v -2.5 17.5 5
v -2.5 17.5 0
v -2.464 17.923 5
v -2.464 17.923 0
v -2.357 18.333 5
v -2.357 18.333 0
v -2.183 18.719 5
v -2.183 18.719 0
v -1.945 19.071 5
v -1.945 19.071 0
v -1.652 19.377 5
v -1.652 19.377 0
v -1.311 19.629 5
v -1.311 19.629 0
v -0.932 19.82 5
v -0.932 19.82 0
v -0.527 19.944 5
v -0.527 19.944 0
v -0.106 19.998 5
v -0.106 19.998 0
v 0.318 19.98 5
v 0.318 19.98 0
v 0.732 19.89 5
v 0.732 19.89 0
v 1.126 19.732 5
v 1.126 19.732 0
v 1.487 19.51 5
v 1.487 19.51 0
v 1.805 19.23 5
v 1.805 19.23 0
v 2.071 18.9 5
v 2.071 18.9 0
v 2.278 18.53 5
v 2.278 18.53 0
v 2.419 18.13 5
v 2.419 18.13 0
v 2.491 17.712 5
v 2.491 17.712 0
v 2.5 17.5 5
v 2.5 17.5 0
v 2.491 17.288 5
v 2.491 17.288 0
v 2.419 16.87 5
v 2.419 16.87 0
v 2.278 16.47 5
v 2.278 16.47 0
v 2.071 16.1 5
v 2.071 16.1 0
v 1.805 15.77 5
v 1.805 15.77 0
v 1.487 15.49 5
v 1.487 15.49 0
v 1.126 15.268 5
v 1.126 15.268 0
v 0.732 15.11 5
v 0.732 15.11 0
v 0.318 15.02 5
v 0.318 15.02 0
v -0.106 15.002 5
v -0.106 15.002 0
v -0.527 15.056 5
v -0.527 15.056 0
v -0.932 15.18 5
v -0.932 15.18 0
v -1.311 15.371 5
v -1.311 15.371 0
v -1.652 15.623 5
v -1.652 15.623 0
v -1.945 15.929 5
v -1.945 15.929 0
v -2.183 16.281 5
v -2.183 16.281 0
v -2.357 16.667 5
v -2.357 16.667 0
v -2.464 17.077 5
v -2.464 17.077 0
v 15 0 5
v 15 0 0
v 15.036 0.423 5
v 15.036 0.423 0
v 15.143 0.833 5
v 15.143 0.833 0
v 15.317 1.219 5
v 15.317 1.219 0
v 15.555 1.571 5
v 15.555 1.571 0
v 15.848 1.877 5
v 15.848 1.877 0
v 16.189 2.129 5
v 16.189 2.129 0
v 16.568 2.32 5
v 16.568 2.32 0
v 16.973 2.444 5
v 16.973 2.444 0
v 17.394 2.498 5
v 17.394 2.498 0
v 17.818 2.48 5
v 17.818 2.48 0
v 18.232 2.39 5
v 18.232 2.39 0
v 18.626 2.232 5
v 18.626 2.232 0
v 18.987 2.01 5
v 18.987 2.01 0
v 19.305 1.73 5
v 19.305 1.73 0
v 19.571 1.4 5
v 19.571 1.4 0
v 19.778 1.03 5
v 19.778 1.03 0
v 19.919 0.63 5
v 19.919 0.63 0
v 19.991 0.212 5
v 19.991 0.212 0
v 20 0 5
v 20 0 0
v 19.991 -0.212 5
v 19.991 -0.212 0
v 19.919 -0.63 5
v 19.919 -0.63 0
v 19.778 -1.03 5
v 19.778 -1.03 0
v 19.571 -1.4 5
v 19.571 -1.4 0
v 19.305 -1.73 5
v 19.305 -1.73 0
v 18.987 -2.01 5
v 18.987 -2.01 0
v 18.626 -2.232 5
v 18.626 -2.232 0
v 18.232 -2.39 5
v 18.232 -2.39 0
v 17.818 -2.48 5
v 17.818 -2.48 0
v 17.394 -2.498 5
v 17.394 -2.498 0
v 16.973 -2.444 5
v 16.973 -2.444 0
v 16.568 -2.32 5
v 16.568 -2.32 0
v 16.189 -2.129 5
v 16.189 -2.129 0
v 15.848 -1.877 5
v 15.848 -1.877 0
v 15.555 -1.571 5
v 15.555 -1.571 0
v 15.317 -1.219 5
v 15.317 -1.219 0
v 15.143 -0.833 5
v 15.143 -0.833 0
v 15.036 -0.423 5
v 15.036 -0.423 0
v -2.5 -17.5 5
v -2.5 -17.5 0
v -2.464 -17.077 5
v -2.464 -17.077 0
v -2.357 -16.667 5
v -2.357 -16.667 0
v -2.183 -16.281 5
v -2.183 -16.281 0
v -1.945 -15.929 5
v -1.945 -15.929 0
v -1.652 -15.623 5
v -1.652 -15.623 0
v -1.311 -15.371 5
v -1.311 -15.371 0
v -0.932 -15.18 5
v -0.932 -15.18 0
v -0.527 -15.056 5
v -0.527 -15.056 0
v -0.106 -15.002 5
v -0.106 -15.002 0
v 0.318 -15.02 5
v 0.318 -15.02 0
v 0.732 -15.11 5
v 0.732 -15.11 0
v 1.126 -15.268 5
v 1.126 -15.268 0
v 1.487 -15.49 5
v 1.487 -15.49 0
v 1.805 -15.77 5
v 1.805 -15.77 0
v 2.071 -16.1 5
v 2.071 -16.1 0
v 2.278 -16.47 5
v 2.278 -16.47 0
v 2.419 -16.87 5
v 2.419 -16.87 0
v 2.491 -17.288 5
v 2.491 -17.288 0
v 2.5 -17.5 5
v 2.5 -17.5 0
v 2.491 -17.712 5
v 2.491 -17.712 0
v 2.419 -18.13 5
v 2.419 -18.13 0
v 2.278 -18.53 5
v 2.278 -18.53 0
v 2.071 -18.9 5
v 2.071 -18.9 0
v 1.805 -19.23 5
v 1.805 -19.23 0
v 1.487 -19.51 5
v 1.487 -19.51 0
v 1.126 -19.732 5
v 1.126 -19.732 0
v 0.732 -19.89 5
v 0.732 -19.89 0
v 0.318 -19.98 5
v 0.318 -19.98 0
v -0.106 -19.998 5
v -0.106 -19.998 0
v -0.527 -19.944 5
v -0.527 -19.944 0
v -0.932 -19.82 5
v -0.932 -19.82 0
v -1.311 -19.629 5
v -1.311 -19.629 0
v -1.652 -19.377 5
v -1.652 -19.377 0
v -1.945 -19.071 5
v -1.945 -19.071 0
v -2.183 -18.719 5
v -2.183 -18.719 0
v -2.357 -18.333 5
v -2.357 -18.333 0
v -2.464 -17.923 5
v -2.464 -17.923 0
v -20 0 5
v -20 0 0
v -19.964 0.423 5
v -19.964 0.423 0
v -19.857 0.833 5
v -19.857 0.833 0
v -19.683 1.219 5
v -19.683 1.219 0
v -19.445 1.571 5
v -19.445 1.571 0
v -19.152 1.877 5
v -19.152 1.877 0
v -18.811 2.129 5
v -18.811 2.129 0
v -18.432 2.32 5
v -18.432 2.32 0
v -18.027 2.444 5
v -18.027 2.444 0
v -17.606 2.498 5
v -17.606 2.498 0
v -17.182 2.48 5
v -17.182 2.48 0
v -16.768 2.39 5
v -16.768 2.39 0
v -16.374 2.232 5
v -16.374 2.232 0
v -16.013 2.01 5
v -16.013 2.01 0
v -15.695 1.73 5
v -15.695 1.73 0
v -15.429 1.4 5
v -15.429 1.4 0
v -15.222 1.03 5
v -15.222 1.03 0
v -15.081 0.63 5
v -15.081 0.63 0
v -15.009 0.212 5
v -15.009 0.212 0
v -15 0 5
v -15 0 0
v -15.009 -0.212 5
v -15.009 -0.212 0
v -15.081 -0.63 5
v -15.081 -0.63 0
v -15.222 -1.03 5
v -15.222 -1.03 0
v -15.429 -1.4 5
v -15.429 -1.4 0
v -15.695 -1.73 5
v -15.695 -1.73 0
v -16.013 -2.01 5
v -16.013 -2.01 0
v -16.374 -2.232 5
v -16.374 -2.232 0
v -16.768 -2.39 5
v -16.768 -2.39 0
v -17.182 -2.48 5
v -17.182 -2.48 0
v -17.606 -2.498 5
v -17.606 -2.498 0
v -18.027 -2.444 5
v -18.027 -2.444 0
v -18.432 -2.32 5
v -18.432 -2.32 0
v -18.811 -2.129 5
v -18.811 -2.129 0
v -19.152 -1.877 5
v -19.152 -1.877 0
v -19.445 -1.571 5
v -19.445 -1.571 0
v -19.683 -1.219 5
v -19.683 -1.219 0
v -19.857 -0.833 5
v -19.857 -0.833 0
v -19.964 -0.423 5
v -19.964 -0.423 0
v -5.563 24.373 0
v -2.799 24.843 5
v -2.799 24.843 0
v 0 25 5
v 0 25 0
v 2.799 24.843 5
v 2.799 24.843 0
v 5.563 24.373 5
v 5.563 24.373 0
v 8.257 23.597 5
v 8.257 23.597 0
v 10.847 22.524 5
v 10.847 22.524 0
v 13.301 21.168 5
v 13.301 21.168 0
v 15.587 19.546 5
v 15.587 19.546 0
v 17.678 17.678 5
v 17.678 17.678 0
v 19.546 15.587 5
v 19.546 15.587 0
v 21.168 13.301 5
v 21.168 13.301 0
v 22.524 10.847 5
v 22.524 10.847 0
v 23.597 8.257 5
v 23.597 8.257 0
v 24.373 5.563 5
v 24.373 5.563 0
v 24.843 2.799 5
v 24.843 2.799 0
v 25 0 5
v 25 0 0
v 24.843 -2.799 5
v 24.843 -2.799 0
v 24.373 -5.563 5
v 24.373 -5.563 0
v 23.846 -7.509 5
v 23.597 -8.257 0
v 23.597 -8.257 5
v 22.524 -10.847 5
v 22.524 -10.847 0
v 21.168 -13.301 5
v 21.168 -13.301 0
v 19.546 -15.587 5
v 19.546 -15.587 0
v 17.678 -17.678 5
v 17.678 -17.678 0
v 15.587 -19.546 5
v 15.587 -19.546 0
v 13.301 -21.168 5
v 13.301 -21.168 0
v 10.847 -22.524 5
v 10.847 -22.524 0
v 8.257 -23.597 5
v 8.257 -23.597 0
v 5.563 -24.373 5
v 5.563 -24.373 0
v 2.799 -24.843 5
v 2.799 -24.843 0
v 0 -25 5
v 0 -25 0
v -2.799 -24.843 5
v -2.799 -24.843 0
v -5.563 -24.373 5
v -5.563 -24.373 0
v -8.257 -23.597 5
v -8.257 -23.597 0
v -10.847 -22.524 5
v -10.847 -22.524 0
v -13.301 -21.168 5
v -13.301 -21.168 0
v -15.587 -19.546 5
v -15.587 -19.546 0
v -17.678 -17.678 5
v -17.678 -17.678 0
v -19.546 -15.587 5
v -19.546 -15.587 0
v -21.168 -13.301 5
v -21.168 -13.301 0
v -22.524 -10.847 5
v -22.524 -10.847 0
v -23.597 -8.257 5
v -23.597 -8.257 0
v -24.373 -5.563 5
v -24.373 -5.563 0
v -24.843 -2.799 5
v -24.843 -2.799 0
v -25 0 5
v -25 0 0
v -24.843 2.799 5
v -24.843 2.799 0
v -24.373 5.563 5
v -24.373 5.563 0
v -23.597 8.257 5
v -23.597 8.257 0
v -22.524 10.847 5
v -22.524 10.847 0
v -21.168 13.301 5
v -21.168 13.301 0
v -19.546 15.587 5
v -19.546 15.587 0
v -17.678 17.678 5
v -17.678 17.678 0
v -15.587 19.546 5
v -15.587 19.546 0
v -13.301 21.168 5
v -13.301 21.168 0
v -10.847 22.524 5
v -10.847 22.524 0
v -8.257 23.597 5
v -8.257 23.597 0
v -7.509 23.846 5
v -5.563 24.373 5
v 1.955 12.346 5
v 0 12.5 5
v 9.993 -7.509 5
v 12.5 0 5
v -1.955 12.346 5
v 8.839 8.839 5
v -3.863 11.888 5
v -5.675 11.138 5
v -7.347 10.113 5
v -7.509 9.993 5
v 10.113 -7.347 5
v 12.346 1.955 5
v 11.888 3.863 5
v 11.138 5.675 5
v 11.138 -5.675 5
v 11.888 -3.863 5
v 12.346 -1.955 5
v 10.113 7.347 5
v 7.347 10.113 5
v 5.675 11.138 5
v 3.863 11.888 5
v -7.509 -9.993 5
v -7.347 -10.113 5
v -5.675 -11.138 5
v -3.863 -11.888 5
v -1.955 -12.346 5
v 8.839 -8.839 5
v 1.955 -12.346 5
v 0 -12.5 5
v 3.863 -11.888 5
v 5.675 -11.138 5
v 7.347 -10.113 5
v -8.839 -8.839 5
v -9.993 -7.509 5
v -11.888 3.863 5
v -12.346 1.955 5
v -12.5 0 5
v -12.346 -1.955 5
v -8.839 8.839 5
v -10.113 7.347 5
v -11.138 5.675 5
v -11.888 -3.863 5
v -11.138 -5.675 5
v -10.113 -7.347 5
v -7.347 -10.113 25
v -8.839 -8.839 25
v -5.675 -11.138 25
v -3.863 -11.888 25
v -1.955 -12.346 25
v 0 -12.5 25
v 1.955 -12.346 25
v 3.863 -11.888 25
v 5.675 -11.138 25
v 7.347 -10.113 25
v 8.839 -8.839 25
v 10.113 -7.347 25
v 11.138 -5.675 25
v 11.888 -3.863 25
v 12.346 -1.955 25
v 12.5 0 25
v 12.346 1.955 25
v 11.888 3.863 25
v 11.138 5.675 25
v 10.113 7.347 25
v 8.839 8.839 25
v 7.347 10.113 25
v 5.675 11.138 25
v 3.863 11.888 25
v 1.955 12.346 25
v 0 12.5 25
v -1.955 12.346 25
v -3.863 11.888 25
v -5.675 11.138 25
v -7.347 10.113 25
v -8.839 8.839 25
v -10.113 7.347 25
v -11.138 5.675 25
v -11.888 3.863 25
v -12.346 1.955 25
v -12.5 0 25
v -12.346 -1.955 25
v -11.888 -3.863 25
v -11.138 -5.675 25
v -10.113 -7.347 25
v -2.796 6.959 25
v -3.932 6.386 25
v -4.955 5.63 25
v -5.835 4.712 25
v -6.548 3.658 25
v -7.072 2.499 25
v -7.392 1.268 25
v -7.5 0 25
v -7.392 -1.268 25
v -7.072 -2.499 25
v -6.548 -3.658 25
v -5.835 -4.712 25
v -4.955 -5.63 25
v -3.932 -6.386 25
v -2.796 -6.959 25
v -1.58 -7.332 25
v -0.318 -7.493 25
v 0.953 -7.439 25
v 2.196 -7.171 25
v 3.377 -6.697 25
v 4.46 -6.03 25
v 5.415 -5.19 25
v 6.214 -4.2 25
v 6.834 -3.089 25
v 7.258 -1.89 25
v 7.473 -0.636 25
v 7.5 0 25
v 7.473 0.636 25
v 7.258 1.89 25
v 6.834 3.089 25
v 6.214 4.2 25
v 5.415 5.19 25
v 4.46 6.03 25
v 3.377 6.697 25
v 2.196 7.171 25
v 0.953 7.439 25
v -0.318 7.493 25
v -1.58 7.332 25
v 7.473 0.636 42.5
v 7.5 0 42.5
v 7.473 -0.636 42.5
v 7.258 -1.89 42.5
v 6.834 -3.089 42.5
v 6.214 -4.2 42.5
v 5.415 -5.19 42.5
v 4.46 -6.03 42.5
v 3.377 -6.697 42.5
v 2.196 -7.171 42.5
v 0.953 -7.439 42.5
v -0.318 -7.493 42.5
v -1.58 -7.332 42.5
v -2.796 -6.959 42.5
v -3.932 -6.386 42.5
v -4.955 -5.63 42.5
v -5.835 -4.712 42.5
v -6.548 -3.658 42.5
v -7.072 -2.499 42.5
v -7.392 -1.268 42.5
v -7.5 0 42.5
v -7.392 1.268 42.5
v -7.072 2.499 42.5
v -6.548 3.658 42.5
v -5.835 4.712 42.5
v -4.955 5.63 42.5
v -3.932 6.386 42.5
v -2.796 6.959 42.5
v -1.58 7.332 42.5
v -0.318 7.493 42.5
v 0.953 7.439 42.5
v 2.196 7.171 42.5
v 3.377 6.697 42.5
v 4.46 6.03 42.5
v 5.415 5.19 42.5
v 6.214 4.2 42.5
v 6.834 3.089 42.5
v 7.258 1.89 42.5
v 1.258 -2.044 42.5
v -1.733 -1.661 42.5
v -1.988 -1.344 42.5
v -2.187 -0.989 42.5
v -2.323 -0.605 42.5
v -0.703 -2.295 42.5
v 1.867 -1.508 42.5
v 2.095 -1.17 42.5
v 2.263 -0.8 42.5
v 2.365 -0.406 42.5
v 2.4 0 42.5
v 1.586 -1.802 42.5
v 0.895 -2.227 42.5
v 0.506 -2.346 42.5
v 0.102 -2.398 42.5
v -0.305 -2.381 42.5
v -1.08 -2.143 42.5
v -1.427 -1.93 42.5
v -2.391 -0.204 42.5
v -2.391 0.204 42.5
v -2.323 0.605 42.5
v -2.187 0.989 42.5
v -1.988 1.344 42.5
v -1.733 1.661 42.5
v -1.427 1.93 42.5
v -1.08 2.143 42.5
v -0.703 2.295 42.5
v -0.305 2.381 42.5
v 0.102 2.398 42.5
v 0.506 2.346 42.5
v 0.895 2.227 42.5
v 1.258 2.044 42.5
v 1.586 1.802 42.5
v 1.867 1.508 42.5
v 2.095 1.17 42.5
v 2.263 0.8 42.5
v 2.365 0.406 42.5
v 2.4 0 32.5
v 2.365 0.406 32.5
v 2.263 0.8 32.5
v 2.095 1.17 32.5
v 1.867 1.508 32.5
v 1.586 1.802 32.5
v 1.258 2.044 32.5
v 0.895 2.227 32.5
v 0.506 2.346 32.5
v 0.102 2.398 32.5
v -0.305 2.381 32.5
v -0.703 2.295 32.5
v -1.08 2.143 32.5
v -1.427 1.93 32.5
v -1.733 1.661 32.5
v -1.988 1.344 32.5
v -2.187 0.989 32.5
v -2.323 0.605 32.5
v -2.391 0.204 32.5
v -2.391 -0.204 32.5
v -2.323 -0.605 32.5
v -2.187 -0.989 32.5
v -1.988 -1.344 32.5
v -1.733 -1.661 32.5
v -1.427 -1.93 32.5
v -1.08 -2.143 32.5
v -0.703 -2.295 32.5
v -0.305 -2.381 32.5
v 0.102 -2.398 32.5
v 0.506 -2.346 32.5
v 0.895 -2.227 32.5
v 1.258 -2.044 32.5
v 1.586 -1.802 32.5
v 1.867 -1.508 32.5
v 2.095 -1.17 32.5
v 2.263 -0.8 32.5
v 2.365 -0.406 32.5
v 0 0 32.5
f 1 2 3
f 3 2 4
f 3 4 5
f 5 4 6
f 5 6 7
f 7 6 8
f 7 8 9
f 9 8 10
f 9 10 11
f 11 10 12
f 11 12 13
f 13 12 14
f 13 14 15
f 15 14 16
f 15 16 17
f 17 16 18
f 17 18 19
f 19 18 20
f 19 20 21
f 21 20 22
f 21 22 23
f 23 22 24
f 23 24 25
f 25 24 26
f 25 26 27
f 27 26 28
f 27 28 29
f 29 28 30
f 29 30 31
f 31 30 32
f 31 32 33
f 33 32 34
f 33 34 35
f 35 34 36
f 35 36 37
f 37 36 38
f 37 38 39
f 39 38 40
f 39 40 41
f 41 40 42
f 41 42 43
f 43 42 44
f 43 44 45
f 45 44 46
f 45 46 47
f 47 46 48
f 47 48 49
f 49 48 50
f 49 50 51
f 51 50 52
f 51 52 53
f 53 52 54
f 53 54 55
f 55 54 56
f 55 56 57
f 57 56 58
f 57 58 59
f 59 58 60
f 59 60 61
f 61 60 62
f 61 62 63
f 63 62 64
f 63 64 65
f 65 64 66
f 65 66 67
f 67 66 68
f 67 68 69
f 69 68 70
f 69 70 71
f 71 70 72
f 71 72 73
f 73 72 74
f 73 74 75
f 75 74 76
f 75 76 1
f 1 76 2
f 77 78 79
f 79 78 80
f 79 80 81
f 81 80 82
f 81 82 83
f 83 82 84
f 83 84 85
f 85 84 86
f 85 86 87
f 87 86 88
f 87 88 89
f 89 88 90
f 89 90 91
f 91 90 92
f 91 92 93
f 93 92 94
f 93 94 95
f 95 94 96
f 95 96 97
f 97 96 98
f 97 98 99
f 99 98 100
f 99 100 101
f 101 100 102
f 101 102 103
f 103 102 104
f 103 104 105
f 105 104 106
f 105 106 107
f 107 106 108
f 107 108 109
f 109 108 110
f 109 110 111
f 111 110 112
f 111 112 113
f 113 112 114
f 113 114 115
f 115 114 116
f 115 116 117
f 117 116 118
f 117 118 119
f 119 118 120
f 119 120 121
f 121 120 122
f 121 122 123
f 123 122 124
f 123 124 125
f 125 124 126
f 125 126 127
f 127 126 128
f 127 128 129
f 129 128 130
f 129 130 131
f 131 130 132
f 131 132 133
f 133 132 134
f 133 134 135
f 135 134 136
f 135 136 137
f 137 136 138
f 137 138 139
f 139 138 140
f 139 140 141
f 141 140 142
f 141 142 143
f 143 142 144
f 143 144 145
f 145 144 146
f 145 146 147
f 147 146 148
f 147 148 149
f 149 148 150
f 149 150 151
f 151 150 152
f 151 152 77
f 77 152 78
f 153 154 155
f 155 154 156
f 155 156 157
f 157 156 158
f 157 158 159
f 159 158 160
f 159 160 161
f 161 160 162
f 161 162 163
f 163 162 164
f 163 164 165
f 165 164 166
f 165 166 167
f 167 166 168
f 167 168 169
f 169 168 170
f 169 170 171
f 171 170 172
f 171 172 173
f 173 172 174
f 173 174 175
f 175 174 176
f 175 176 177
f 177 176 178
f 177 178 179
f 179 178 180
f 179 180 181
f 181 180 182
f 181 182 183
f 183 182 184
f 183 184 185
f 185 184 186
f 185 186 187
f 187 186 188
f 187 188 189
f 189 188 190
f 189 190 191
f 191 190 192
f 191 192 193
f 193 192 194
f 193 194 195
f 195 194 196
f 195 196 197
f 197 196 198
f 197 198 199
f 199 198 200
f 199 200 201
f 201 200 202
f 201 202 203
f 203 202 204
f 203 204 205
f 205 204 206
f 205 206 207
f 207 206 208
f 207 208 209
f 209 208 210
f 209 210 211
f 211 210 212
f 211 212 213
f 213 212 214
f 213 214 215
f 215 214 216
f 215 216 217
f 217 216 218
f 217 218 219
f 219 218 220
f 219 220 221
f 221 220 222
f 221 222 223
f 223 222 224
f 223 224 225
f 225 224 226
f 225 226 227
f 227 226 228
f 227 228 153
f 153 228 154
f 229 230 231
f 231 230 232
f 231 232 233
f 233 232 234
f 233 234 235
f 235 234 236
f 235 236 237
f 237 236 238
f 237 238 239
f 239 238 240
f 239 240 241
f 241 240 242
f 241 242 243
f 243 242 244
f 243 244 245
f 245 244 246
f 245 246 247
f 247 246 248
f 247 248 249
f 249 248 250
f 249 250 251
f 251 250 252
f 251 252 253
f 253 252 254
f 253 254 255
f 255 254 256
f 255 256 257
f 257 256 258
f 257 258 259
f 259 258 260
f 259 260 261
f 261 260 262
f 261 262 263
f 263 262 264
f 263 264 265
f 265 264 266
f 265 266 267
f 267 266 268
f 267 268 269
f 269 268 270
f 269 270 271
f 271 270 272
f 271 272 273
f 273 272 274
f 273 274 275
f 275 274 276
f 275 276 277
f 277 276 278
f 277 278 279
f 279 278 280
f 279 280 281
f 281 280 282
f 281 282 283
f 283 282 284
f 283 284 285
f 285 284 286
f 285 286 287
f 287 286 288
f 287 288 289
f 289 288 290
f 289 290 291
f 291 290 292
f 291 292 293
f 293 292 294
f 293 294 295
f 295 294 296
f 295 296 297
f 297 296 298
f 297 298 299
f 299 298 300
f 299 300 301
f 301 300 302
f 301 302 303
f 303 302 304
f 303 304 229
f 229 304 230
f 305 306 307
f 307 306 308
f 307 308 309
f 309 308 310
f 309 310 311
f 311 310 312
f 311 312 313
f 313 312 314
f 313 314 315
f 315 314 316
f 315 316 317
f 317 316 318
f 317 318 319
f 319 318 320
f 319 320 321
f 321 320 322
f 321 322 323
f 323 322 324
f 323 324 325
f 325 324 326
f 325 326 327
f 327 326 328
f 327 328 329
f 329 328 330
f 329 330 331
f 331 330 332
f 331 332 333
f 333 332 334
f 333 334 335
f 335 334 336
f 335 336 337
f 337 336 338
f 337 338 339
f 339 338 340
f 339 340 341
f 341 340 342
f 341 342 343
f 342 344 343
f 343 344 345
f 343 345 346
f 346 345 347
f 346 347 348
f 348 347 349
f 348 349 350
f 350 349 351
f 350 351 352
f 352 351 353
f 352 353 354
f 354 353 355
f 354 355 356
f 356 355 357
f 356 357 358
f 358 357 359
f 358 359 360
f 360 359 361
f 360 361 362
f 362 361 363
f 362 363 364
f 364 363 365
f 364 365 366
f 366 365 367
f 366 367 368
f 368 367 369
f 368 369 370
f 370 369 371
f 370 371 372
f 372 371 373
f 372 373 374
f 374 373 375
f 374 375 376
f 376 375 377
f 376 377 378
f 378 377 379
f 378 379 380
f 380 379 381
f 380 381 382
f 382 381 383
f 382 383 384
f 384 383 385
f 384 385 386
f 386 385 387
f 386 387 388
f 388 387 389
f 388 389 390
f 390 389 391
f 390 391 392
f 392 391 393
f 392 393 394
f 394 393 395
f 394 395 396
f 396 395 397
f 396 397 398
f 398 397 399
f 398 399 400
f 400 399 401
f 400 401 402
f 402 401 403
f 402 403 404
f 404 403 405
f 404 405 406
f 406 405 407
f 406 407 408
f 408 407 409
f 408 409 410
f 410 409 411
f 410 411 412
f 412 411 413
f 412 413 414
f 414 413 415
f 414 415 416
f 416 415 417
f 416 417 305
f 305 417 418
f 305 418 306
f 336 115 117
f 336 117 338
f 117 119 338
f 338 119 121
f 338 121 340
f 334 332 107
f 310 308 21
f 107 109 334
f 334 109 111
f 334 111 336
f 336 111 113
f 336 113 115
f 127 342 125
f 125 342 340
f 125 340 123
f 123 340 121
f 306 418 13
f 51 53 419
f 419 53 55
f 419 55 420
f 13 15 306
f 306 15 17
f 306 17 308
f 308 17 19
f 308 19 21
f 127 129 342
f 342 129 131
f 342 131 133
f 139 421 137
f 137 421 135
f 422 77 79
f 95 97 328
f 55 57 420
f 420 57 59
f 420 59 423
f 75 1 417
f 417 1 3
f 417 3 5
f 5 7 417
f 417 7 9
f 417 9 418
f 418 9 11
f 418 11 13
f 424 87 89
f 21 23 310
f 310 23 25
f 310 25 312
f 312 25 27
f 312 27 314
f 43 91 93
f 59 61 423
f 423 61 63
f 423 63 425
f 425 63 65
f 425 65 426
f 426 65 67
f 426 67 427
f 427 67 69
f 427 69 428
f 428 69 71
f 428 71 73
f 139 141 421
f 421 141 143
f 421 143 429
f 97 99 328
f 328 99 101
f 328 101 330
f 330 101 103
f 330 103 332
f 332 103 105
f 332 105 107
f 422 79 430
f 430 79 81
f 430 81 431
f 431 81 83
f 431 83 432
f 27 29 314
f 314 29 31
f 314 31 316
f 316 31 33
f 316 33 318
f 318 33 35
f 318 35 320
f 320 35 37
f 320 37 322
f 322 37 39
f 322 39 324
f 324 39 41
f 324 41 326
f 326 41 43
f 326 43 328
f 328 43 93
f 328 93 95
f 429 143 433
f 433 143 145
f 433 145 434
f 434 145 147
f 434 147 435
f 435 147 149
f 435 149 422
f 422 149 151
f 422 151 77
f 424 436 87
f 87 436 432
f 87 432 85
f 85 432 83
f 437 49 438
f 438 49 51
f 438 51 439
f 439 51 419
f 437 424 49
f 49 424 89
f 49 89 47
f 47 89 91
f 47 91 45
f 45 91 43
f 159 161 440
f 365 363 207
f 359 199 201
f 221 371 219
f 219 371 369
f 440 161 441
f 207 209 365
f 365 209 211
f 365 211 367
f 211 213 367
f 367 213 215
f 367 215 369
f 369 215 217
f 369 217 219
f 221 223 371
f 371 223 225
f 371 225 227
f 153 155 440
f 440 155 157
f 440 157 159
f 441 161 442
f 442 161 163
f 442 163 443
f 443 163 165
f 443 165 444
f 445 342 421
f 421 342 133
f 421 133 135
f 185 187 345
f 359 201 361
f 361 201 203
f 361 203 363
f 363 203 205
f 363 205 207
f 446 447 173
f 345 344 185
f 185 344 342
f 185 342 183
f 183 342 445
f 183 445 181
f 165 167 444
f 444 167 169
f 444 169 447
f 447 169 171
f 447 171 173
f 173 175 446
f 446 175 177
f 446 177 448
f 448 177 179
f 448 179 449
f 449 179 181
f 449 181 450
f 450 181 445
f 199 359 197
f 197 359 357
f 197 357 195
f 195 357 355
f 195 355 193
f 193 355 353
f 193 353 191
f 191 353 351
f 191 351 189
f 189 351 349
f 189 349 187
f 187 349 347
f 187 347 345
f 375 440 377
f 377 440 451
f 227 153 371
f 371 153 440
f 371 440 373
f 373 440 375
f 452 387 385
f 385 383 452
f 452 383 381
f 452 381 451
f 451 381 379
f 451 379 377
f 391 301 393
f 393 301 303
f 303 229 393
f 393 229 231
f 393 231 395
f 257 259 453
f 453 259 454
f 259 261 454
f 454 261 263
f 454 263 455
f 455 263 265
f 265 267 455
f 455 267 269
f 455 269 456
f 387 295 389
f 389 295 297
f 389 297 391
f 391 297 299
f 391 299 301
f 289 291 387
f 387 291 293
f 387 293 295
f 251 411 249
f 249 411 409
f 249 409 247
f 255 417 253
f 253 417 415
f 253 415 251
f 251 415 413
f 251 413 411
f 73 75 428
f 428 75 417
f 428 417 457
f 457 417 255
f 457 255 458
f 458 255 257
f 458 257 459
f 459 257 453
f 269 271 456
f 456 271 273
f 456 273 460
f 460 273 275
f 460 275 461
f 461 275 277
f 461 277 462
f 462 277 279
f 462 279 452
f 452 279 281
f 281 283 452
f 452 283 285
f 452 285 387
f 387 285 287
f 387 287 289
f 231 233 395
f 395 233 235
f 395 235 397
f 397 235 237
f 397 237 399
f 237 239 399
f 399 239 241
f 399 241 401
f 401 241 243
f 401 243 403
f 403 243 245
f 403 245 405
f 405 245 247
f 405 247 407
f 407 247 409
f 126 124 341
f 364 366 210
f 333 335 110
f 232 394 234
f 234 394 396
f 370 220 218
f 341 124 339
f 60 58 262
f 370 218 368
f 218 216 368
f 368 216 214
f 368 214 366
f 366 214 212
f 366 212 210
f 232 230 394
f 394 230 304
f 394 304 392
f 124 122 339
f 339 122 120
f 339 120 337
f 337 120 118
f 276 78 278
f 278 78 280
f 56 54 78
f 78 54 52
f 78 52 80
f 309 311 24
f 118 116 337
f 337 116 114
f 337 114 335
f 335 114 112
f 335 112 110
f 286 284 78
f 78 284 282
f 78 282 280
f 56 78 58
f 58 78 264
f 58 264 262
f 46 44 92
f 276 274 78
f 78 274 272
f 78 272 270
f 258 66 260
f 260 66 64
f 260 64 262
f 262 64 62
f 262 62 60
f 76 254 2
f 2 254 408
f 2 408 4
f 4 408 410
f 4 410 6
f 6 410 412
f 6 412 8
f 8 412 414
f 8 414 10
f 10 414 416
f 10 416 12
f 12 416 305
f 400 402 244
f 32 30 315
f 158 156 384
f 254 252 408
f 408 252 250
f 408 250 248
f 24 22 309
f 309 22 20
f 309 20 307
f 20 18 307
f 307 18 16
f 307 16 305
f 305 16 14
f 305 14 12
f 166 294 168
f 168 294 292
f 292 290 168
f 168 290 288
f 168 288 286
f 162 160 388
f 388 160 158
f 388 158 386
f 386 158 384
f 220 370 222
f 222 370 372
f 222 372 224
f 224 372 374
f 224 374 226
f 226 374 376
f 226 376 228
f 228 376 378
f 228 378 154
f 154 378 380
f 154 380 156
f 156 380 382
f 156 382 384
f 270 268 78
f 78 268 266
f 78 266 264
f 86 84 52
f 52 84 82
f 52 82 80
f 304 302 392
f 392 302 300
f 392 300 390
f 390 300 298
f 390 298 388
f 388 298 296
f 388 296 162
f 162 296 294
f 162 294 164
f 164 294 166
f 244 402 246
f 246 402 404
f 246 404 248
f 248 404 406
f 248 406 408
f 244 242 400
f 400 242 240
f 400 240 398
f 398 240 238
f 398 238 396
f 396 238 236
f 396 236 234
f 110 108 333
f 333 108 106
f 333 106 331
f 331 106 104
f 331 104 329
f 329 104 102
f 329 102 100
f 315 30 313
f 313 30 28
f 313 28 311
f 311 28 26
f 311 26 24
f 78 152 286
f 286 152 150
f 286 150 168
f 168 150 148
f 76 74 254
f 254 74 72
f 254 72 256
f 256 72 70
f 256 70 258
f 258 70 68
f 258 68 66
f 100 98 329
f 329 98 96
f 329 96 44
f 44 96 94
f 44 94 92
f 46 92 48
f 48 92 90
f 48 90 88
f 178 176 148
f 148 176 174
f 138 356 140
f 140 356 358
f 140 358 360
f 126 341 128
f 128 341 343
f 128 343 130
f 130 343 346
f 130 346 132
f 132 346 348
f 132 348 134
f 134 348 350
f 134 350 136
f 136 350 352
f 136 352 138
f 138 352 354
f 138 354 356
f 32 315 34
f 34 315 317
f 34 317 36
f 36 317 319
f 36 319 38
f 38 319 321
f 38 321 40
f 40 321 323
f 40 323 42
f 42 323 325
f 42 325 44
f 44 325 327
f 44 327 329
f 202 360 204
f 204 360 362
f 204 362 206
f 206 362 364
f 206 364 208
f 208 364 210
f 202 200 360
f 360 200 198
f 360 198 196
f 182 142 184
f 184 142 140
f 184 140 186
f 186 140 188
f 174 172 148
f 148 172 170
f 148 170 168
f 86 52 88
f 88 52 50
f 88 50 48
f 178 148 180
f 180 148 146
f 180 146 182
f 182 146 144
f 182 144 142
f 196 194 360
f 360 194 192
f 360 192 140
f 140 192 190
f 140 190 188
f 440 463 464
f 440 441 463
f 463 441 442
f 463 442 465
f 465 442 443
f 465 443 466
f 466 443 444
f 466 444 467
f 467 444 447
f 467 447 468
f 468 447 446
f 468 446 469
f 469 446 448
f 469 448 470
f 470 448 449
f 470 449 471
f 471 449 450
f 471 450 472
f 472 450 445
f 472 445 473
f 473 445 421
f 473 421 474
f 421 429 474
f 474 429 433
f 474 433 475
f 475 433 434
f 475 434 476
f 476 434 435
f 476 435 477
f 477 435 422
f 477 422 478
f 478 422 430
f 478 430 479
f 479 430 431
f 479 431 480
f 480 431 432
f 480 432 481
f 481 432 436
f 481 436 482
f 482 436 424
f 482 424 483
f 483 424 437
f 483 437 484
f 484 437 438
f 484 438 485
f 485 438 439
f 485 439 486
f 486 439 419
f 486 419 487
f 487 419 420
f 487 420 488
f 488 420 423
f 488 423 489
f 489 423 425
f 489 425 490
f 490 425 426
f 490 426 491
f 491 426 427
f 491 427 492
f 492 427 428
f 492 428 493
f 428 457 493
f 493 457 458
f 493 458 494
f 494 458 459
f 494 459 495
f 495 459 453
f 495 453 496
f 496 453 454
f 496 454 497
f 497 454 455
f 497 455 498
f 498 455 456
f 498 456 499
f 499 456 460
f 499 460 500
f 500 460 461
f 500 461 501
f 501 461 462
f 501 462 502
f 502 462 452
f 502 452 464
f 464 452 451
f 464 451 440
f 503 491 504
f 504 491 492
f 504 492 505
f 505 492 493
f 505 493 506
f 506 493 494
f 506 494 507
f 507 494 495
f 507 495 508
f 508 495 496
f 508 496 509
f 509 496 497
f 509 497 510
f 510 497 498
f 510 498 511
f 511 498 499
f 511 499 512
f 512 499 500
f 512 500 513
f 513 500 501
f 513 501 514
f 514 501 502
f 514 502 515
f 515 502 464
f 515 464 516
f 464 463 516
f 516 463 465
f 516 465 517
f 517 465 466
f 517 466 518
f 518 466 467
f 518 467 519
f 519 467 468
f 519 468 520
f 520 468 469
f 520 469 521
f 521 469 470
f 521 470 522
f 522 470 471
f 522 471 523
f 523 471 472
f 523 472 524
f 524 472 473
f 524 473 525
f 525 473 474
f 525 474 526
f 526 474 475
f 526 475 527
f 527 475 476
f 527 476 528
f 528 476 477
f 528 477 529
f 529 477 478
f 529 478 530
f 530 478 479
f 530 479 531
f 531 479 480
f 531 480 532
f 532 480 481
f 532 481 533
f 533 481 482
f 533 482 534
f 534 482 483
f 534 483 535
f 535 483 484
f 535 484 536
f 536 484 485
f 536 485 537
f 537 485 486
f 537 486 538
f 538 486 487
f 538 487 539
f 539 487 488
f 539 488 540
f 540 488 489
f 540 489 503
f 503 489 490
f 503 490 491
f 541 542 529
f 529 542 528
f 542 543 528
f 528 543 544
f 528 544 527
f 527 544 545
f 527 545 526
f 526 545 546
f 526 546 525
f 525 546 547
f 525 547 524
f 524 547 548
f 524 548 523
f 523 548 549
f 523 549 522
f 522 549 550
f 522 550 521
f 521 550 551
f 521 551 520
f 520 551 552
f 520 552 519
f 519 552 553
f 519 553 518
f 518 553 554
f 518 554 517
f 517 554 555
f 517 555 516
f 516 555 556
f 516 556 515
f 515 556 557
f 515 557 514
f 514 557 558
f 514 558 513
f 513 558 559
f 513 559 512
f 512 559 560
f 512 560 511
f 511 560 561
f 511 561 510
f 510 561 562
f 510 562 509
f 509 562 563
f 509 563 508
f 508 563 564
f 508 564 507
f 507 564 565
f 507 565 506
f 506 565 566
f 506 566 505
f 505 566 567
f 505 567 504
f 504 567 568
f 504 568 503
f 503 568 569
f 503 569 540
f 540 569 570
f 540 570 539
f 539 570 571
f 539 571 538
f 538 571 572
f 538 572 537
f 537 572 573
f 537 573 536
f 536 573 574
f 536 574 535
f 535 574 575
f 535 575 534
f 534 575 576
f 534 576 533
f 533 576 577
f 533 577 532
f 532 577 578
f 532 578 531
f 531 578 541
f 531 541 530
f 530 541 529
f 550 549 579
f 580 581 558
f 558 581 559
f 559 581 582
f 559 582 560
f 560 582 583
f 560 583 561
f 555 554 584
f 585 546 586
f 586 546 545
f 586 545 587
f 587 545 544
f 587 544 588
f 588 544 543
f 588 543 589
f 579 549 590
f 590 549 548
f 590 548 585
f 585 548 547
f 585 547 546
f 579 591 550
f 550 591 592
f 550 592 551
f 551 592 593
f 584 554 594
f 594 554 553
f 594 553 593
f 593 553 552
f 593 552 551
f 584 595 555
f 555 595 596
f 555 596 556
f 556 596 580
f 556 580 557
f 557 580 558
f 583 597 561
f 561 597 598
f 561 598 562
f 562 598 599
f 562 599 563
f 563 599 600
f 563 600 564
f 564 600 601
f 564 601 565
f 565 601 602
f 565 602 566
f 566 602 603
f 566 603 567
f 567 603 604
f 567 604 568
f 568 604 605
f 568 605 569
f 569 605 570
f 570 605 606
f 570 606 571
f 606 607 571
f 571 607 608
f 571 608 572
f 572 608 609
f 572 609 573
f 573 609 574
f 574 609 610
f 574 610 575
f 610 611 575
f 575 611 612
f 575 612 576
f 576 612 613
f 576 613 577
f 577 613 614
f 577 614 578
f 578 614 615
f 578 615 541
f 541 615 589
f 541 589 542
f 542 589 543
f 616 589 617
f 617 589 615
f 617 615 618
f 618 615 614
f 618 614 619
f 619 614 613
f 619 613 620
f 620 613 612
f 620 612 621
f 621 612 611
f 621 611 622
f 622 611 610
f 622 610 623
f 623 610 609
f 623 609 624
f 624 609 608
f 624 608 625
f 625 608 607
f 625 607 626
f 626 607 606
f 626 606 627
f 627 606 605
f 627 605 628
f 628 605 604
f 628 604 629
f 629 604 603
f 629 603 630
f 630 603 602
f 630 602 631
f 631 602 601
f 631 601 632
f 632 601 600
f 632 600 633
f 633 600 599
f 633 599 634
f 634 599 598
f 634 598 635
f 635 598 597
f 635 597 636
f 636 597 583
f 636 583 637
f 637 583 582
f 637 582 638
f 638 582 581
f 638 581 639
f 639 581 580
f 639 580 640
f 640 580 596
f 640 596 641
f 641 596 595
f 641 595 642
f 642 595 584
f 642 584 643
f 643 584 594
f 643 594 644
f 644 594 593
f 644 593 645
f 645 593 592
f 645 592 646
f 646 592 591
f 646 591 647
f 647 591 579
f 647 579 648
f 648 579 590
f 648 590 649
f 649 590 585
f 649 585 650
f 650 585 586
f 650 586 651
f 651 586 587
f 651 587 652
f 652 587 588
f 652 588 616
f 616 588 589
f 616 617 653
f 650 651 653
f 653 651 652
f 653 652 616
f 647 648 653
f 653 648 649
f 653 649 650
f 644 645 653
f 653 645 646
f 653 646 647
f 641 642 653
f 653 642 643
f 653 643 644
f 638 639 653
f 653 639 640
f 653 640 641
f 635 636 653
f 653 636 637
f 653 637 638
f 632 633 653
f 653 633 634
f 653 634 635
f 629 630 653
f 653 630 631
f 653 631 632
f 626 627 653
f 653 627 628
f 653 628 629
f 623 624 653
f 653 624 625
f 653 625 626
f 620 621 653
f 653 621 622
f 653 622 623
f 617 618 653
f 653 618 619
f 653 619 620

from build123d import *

# Parameters (mm, degrees)
SKETCH1_R           = 25
SKETCH1_R_2         = 2.5
SKETCH1_R_3         = 10
BOSS_EXTRUDE1_DEPTH = 5
SKETCH2_R           = 12.5
BOSS_EXTRUDE2_DEPTH = 20
SKETCH3_R           = 7.5
BOSS_EXTRUDE3_DEPTH = 17.5
SKETCH4_R           = 2.4
CUT_EXTRUDE1_DEPTH  = 10


with BuildPart() as part:
    # Sketch1 → Boss-Extrude1 (new body)
    # profile 1 of 2: a face of its own
    with BuildSketch(Plane.XY):
        Circle(SKETCH1_R)
        with Locations((-17.5, 0)):
            Circle(SKETCH1_R_2, mode=Mode.SUBTRACT)
        with Locations((0, -17.5)):
            Circle(SKETCH1_R_2, mode=Mode.SUBTRACT)
        with Locations((17.5, 0)):
            Circle(SKETCH1_R_2, mode=Mode.SUBTRACT)
        with Locations((0, 17.5)):
            Circle(SKETCH1_R_2, mode=Mode.SUBTRACT)
        Circle(SKETCH1_R_3, mode=Mode.SUBTRACT)
    # profile 2 of 2: a face of its own
    with BuildSketch(Plane.XY):
        Circle(SKETCH1_R_3)
    extrude(amount=BOSS_EXTRUDE1_DEPTH)

    # Sketch2 → Boss-Extrude2 (add)
    with BuildSketch(Plane.XY.offset(5)):
        Circle(SKETCH2_R)
    extrude(amount=BOSS_EXTRUDE2_DEPTH)

    # Sketch3 → Boss-Extrude3 (add)
    with BuildSketch(Plane.XY.offset(25)):
        Circle(SKETCH3_R)
    extrude(amount=BOSS_EXTRUDE3_DEPTH)

    # Sketch4 → Cut-Extrude1 (cut)
    with BuildSketch(Plane.XY.offset(42.5)):
        Circle(SKETCH4_R)
    extrude(amount=-CUT_EXTRUDE1_DEPTH, mode=Mode.SUBTRACT)


solid = part.part
